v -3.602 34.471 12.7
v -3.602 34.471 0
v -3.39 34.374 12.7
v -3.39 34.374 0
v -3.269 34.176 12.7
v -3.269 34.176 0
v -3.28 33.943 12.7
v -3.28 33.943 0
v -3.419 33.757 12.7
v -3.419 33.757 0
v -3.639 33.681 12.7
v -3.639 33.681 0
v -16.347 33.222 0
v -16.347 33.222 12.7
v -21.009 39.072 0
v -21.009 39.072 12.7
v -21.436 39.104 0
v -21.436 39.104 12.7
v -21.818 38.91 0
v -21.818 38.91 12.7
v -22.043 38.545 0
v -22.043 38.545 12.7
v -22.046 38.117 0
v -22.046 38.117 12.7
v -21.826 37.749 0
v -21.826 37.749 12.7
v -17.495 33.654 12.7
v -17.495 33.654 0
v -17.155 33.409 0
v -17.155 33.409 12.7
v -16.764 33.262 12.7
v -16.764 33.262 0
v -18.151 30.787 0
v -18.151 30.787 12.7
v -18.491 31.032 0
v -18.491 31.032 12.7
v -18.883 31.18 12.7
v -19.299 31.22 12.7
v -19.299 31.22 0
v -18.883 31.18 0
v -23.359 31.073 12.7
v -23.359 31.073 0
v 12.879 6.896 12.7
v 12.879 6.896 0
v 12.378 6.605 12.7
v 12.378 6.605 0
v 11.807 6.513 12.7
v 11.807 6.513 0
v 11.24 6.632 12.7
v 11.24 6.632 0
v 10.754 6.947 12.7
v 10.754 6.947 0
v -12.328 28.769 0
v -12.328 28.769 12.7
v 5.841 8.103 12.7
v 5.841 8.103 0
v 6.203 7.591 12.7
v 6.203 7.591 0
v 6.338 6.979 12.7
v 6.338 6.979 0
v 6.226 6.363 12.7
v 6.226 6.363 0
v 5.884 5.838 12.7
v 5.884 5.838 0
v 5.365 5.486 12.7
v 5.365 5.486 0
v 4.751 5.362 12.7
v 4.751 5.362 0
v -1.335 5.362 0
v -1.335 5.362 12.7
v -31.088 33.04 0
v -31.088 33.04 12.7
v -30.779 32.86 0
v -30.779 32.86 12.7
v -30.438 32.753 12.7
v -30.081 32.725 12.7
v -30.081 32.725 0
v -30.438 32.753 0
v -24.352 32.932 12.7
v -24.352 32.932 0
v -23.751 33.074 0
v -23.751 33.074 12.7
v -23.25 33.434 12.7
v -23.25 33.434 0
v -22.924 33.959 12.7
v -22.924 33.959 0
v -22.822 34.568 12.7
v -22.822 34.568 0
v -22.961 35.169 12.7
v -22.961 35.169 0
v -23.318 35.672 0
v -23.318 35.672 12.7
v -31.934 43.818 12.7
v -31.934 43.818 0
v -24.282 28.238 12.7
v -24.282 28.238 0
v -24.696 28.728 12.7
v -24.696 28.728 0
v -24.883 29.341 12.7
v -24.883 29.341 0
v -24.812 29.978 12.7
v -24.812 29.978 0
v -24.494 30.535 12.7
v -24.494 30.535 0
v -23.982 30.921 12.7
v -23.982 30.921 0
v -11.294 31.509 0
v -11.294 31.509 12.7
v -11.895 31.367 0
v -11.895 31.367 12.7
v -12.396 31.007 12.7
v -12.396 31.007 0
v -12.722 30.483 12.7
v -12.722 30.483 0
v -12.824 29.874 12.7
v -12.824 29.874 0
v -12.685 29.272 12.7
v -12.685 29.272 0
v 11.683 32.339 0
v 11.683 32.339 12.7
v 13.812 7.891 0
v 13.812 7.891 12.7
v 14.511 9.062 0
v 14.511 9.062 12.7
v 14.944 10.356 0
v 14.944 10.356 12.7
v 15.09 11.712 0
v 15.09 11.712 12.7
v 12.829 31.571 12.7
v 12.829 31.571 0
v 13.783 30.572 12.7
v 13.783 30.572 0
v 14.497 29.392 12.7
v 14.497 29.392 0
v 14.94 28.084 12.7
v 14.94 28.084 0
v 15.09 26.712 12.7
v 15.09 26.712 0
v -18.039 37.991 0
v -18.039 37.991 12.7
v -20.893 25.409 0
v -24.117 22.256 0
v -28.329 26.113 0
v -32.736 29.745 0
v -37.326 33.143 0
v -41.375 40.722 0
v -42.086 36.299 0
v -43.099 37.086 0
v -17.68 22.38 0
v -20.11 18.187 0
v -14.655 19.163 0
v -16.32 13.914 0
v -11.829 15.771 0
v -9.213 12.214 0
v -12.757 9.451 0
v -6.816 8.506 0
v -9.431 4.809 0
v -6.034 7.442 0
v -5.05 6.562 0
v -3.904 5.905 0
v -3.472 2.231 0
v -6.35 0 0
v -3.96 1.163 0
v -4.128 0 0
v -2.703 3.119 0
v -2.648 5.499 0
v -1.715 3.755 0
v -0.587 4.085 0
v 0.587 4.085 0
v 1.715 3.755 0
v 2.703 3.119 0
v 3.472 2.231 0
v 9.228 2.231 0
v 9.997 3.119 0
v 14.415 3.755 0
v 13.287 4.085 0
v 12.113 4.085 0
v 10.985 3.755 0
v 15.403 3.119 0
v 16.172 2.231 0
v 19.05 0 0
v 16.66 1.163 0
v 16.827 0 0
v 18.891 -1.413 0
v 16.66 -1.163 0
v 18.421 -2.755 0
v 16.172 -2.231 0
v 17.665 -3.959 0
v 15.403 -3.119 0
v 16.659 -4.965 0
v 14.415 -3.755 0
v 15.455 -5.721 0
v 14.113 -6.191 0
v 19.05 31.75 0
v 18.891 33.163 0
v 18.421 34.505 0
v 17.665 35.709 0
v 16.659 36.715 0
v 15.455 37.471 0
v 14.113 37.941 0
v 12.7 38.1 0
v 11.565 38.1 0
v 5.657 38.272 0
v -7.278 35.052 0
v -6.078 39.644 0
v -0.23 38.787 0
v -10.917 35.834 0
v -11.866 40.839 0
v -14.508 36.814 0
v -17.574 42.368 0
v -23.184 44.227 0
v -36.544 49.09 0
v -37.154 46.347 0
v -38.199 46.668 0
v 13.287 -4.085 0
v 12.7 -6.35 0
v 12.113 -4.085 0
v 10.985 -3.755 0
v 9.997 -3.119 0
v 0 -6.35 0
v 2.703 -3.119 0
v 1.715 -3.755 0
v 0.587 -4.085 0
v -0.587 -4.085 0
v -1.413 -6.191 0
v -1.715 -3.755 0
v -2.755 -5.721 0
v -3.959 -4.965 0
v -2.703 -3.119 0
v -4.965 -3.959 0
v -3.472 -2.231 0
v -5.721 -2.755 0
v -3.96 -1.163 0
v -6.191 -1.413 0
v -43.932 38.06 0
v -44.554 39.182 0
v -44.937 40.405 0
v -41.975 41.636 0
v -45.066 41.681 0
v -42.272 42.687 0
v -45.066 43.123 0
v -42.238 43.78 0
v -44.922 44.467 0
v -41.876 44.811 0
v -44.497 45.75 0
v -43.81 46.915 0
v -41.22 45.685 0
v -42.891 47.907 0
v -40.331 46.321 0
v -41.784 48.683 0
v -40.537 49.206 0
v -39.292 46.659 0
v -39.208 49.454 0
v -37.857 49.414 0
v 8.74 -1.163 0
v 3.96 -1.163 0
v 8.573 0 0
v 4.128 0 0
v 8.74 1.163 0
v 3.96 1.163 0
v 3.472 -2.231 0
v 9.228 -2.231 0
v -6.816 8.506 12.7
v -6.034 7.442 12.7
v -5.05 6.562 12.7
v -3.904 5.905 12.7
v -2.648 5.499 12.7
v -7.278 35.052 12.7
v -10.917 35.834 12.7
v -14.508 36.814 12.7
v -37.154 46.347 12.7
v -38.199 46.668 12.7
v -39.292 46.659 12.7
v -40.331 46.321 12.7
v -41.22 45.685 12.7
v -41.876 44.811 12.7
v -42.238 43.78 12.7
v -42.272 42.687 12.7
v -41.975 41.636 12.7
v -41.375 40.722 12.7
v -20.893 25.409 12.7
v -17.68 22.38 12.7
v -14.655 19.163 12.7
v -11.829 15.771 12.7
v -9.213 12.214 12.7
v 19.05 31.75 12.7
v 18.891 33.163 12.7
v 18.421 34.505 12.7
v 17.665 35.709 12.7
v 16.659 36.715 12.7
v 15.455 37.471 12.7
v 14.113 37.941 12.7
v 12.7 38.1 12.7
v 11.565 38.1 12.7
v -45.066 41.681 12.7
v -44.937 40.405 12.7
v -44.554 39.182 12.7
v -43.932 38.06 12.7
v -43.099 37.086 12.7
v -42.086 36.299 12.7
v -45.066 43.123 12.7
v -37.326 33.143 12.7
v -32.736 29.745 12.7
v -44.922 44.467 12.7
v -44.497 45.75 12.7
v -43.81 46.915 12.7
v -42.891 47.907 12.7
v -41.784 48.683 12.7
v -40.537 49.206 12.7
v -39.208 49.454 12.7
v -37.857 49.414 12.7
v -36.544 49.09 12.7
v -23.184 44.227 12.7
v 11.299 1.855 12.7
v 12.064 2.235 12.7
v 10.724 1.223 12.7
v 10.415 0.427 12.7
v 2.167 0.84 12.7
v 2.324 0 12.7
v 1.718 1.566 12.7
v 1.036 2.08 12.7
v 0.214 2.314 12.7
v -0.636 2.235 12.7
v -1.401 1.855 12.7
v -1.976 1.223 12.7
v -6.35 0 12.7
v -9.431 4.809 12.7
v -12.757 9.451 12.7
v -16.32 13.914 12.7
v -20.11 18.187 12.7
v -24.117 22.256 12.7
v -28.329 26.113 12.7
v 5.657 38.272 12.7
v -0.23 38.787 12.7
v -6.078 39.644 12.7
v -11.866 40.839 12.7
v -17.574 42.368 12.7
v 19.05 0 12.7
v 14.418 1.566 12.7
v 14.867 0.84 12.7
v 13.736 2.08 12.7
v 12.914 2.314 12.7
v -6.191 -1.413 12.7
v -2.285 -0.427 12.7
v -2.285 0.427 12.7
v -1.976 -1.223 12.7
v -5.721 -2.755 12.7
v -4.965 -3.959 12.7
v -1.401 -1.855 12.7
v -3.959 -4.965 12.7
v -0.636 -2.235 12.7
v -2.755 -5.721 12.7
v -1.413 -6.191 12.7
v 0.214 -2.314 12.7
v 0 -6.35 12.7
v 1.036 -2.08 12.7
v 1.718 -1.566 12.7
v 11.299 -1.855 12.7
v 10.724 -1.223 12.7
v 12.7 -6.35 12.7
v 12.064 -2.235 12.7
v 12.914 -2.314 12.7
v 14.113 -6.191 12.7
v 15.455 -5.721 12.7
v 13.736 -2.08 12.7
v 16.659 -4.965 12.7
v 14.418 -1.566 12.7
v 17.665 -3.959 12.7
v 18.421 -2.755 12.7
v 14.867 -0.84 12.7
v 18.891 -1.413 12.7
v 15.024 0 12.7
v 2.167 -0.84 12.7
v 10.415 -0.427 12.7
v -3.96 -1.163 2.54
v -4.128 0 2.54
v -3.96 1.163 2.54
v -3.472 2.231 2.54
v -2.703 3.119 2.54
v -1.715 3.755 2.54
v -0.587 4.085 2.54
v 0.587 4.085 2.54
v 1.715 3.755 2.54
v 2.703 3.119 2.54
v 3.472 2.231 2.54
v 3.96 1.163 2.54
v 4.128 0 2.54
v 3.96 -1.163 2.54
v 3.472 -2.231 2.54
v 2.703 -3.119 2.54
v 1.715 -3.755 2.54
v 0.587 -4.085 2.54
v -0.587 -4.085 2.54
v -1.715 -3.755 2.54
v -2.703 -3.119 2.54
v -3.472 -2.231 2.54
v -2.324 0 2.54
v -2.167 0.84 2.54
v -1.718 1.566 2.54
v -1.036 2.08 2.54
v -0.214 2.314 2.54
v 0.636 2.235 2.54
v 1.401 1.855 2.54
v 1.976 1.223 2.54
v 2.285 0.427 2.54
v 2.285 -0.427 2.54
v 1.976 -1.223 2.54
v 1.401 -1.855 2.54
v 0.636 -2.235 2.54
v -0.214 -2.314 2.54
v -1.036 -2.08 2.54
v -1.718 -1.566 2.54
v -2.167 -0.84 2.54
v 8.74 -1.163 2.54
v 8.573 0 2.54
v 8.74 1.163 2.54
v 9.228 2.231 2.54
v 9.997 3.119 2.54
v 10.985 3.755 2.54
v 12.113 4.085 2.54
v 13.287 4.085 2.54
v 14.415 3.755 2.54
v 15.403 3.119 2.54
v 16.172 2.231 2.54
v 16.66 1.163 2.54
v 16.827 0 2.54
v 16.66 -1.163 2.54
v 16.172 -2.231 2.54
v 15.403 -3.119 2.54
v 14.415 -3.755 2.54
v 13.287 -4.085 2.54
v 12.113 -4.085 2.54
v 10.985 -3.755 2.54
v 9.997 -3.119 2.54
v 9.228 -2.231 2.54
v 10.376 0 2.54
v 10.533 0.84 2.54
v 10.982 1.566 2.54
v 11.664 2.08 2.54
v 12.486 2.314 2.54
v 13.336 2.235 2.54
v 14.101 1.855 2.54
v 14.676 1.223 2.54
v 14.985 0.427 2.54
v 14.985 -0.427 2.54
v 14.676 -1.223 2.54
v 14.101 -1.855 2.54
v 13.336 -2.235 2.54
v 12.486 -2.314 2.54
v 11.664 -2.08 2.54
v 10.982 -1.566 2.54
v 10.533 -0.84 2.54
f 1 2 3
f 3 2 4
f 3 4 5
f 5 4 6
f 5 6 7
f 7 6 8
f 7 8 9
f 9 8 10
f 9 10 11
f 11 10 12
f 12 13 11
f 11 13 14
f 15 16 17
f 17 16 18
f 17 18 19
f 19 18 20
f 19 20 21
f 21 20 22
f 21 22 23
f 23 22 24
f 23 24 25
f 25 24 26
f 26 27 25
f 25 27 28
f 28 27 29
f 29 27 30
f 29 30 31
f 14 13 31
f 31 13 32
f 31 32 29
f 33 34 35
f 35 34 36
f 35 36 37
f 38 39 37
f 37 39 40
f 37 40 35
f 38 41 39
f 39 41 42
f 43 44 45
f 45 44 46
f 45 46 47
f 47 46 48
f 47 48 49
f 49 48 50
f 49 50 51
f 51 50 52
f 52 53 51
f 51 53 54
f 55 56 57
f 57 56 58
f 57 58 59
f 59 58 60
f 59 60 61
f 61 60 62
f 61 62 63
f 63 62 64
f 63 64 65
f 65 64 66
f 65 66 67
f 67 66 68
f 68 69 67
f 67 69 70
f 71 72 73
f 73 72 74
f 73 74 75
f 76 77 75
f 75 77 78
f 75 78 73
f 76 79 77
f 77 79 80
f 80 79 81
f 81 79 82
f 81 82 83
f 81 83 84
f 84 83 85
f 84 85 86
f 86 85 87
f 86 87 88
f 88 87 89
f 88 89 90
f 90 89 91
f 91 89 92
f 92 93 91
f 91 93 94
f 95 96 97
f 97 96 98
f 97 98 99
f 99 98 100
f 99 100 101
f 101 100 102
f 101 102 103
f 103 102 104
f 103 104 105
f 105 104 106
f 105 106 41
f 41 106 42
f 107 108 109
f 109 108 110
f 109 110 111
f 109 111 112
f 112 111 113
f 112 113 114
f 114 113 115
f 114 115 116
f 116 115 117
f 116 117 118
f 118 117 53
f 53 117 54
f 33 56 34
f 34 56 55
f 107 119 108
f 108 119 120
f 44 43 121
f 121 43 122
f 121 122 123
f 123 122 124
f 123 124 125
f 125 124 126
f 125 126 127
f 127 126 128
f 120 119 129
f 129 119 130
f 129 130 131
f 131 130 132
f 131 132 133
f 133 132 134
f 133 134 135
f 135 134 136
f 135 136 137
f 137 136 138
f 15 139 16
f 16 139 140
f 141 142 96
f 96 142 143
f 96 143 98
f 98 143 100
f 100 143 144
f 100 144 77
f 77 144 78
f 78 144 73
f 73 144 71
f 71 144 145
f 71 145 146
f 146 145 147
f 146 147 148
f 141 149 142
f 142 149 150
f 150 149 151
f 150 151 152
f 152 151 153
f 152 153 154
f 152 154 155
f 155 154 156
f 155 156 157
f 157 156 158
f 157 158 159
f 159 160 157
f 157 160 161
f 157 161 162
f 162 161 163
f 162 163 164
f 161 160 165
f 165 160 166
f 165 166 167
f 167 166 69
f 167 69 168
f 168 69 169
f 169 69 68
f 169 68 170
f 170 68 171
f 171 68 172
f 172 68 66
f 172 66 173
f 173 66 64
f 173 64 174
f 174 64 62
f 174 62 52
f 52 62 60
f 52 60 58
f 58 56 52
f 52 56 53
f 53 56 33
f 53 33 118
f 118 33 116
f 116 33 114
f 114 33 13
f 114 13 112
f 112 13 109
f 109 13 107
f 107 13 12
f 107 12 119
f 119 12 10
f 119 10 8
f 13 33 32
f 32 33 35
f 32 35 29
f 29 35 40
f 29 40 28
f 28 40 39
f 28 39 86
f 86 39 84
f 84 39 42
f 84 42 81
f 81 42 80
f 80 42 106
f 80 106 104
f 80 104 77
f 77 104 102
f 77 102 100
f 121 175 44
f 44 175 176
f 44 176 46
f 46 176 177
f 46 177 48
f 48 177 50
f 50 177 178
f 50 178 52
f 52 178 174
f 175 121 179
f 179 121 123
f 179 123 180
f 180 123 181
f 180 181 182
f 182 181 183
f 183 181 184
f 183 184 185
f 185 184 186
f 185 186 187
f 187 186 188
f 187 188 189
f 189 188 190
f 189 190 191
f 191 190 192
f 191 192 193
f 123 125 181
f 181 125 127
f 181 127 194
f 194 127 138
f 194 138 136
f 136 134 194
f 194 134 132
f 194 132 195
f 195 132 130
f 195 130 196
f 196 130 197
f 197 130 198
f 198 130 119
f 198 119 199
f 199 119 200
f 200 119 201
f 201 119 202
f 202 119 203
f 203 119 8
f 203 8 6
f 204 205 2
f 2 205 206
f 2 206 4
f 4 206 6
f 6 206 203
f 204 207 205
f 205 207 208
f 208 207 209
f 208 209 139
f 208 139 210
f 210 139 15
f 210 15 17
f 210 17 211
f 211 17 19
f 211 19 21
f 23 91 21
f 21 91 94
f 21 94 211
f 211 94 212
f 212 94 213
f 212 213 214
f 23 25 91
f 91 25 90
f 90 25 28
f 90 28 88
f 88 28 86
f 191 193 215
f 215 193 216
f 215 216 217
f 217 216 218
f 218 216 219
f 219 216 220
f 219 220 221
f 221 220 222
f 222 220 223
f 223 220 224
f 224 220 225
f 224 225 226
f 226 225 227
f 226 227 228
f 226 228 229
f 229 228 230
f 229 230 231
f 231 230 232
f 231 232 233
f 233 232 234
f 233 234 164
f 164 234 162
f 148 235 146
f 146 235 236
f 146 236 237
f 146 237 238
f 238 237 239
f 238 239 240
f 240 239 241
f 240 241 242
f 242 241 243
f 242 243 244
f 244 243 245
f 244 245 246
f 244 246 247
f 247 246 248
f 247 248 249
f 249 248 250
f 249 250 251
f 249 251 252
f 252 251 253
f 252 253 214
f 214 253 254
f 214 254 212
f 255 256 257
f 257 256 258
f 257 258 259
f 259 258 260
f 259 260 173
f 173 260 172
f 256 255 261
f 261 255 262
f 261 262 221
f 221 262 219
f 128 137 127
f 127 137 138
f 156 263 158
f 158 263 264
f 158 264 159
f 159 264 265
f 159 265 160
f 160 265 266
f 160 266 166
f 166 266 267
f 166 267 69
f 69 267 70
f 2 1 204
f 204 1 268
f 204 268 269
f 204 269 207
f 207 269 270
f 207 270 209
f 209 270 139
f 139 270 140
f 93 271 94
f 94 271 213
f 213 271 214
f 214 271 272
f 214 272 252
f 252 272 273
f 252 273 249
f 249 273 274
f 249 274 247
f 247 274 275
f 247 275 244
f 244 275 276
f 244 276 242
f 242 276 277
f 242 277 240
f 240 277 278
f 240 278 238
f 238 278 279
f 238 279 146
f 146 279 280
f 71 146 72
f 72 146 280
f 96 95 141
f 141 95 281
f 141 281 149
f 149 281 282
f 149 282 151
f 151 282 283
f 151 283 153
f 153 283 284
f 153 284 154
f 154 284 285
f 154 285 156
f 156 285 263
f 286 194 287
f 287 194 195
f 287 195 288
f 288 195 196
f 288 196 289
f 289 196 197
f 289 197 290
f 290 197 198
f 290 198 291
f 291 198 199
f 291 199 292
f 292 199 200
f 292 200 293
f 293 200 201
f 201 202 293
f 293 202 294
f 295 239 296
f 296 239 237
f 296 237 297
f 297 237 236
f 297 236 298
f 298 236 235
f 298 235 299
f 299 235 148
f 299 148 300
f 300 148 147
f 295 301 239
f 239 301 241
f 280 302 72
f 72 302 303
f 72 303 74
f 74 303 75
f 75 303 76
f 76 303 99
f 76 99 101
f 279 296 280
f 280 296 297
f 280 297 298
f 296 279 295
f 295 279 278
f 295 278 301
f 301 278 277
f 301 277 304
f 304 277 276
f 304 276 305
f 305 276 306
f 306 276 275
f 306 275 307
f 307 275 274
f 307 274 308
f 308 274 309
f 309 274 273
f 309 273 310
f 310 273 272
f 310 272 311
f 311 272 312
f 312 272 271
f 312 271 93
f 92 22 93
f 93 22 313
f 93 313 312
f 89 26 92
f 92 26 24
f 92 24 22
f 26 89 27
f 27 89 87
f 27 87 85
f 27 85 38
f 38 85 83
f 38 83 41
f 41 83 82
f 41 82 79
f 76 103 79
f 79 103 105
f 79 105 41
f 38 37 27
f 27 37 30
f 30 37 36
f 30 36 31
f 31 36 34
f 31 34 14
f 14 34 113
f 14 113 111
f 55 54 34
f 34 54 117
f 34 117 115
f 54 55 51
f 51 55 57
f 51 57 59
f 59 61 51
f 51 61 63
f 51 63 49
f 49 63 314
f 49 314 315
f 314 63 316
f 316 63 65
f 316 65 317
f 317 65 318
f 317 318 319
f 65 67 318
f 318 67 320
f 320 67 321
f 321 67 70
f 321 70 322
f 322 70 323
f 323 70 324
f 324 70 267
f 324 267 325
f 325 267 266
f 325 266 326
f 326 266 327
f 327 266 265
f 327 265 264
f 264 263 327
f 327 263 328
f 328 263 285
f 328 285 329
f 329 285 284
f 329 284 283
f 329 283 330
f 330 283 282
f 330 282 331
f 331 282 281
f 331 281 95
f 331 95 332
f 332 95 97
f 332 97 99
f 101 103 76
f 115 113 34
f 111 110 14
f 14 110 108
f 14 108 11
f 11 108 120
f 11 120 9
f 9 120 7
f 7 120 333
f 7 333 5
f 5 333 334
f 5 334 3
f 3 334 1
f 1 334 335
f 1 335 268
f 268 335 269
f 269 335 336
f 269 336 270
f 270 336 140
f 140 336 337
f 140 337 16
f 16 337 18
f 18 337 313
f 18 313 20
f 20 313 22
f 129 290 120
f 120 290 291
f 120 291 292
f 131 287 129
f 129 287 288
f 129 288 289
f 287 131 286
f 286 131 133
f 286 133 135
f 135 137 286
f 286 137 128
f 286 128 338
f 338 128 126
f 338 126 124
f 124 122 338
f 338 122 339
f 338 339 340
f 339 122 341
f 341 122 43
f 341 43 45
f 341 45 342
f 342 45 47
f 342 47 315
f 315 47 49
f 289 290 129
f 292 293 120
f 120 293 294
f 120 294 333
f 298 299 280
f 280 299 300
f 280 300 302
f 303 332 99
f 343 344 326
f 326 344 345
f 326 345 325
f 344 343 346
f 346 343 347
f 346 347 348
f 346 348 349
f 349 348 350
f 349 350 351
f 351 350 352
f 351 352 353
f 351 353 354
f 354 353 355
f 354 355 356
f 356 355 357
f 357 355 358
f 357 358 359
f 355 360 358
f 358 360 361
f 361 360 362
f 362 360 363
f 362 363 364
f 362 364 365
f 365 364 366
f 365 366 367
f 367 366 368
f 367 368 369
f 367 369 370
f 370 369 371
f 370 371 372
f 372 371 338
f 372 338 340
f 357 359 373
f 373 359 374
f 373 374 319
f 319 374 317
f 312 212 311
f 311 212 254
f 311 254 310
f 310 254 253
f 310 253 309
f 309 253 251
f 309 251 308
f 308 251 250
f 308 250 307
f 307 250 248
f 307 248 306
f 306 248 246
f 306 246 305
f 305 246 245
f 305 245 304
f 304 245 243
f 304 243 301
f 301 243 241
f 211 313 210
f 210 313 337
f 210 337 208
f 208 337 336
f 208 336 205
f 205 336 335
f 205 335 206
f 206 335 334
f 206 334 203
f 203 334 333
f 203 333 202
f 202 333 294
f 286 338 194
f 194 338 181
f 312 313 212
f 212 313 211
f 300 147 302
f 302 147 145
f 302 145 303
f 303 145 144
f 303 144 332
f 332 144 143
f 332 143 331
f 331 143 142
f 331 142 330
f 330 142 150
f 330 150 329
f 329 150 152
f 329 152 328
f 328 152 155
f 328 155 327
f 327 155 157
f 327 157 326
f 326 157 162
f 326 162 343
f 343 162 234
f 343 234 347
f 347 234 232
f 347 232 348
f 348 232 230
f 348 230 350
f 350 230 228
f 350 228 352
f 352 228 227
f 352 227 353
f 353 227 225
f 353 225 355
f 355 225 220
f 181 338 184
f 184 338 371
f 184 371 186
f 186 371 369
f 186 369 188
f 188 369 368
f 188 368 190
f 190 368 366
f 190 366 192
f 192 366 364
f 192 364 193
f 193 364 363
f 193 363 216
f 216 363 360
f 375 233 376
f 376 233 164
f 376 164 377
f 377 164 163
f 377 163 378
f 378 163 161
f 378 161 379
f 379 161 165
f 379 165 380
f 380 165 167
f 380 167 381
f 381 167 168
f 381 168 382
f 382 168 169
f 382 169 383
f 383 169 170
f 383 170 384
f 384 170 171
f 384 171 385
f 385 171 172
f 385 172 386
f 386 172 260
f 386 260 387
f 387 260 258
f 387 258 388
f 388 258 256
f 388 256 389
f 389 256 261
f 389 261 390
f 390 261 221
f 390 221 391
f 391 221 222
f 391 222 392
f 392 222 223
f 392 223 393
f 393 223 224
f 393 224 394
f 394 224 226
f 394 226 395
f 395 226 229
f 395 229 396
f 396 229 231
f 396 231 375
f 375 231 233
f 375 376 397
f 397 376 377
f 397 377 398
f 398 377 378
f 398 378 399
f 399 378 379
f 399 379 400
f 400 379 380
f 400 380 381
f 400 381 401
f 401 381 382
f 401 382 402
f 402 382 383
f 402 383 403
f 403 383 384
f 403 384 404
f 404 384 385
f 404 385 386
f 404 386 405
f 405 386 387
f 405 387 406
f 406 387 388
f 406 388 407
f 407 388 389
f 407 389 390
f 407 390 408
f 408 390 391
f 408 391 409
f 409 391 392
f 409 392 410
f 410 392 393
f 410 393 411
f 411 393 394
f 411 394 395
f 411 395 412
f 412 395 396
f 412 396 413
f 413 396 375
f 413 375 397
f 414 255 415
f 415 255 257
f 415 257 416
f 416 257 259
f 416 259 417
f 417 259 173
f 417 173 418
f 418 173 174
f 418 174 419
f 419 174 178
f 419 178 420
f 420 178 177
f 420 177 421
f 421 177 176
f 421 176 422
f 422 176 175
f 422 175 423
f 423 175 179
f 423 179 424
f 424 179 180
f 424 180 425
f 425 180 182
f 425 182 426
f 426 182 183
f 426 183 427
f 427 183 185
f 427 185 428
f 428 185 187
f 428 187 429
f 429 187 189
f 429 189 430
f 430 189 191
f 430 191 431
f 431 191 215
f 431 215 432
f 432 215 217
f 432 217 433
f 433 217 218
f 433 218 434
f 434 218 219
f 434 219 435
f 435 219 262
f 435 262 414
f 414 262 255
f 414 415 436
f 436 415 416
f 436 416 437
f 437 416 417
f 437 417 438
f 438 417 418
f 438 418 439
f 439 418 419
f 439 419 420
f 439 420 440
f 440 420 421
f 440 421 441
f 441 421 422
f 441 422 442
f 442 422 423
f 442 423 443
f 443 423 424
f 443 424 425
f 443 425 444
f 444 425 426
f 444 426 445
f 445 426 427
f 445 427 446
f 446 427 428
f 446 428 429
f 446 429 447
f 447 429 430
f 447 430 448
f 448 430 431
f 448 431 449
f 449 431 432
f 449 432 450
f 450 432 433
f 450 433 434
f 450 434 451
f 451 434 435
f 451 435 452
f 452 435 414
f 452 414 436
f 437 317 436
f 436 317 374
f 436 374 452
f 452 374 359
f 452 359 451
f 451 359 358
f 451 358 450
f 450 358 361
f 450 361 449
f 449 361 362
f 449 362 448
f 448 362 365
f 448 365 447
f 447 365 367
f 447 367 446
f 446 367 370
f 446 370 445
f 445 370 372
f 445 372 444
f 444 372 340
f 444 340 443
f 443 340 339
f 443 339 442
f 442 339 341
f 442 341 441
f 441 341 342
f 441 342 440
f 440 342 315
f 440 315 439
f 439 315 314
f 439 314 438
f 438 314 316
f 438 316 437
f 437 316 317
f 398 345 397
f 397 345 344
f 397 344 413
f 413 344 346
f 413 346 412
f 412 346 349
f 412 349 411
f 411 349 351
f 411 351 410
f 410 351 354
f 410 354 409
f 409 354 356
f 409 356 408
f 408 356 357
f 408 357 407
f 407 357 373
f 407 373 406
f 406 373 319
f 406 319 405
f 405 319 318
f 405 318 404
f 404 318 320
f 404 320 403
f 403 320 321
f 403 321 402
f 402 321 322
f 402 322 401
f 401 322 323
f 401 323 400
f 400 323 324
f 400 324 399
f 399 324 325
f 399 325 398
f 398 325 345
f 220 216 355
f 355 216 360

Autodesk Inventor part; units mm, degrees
ref_plane "YZ Plane" through (0, 0, 0) normal (1, 0, 0) x (0, 1, 0)
ref_plane "XZ Plane" through (0, 0, 0) normal (0, 1, 0) x (-1, 0, 0)
ref_plane "XY Plane" through (0, 0, 0) normal (0, 0, 1) x (1, 0, 0)
sketch "Sketch1" plane through (0, 0, 0) normal (0, 0, 1) x (1, 0, 0)
  circle A0 centre (0, 0) radius 2.3241
  line L0 (0, 0) -> (12.7, 0)
  circle A1 centre (12.7, 0) radius 2.3241
  line L1 (0, 0) -> (12.7, 0) construction
  line L2 (0, -6.35) -> (12.7, -6.35)
  line L3 (12.7, 6.35) -> (0, 6.35)
  arc A2 (0, 6.35) -> (0, -6.35) centre (0, 0) ccw
  arc A3 (12.7, -6.35) -> (12.7, 6.35) centre (12.7, 0) ccw
  point P0 (6.35, 0)
  dimension "d0" = 4.6482
  dimension "d1" = 12.7
  dimension "d2" = 4.6482
  dimension "d3" = 12.7
extrude "Extrusion1" add sketch "Sketch1" along normal blind 12.7
sketch "Sketch2" plane through (0, 0, 0) normal (0, 0, -1) x (-1, 0, 0)
  circle A0 centre (-12.7, 0) radius 2.3241 projected
  circle A1 centre (0, 0) radius 2.3241 projected
  circle A2 centre (-12.7, 0) radius 4.1275
  circle A3 centre (0, 0) radius 4.1275
  dimension "d6" = 8.255
  dimension "d7" = 8.255
extrude "Extrusion2" cut sketch "Sketch2" against normal blind 2.54
sketch "Sketch3" plane through (0, 0, 12.7) normal (0, 0, 1) x (1, 0, 0)
  arc A0 (0, 6.35) -> (0, -6.35) centre (0, 0) ccw projected
  arc A1 (12.7, -6.35) -> (12.7, 6.35) centre (12.7, 0) ccw projected
  line L0 (12.7, 6.35) -> (0, 6.35) projected
  arc A2 (0, 6.35) -> (0, -6.35) centre (0, 0) ccw projected
  line L1 (0, -6.35) -> (12.7, -6.35) projected
  circle A3 centre (0, 0) radius 2.3241 projected
  circle A4 centre (12.7, 0) radius 2.3241 projected
  line L2 (19.05, 0) -> (19.05, 38.1)
  line L3 (-6.35, 0) -> (-6.35, 38.1)
  arc A5 (0, 6.35) -> (0, -6.35) centre (0, 0) ccw projected
  line L4 (-6.35, 38.1) -> (19.05, 38.1)
  line L5 (-6.35, 38.1) -> (-69.85, 38.1)
  line L6 (-6.35, 38.1) -> (-72.261, 62.0897)
  line L7 (-72.261, 62.0897) -> (-72.261, 49.3897)
  arc A6 (-6.35, 0) -> (-72.261, 49.3897) centre (-100.4419, -56.8924) ccw
  line L8 (-34.5064, 31.0993) -> (-34.5064, 48.3481)
  line L9 (-45.0661, 38.1) -> (-45.0661, 52.1915)
  point P0 (0, 6.35)
  point P1 (-34.5064, 38.1)
  dimension "d10" = 38.1
  dimension "d14" = 63.5
  dimension "d15" = 20
  dimension "d16" = 12.7
extrude "Extrusion3" add sketch "Sketch3" against normal up to surface (12.7 mm away) contours A0 L3 L4 L2 A1 L0 | A6 L8 L5 L3 | L5 L8 L6
fillet "Fillet1" radius 6.35 1 edges at (19.05, 38.1, 6.35)
fillet "Fillet2" radius 101.6 1 edges at (-6.35, 38.1, 6.35)
extrude "Extrusion7" add sketch "Sketch3" against normal blind 12.7 contours A0 L3 L4 L2 A1 L0 | A6 L8 L5 L3 | A6 L5 L8 | L5 L9 L6 L8
fillet "Fillet3" radius 6.35 3 edges at (-45.0661, 52.1915, 6.35) (-45.0661, 38.1, 6.35) (19.05, 38.1, 6.35)
sketch "Sketch6" plane through (0, 0, 12.7) normal (0, 0, 1) x (1, 0, 0)
  line L0 (-36.5443, 49.0898) -> (-23.1844, 44.2272) projected
  line L1 (-26.9453, 41.2324) -> (-18.0387, 37.9907)
  arc A0 (-23.1844, 44.2272) -> (11.5648, 38.1) centre (11.5648, 139.7) ccw projected
  arc A1 (-18.0387, 37.9907) -> (5.1275, 33.9059) centre (5.1275, 101.6392) ccw
  arc A2 (-36.5443, 49.0898) -> (-45.0661, 43.1228) centre (-38.7161, 43.1228) ccw projected
  arc A3 (-26.9453, 41.2324) -> (-32.6265, 37.2544) centre (-28.3931, 37.2544) ccw
  arc A4 (-45.0661, 41.681) -> (-42.0862, 36.2991) centre (-38.7161, 41.681) ccw projected
  arc A5 (-32.6265, 36.2932) -> (-30.6399, 32.7052) centre (-28.3932, 36.2932) ccw
  line L2 (-45.0661, 41.681) -> (-45.0661, 43.1228) projected
  line L3 (-32.6265, 36.2932) -> (-32.6265, 37.2544)
  arc A6 (-6.35, 0) -> (0, -6.35) centre (0, 0) ccw projected
  arc A7 (-6.8158, 8.5058) -> (-30.6399, 32.7052) centre (-69.5437, -29.4224) ccw
  arc A8 (12.7, -6.35) -> (19.05, 0) centre (12.7, 0) ccw projected
  line L4 (-6.8158, 8.5058) -> (10.1176, 8.5058)
  line L5 (10.1176, 8.5058) -> (10.1176, 30.026)
  line L6 (12.7, 38.1) -> (11.5648, 38.1) projected
  line L7 (5.1275, 33.9059) -> (5.8843, 33.9059)
  arc A9 (10.1176, 30.026) -> (5.8843, 33.9059) centre (5.8784, 29.65) ccw
  circle A10 centre (-38.7161, 43.1228) radius 3.5825
  line L8 (-30.6399, 32.7052) -> (-41.3753, 40.7221)
  line L9 (-37.1542, 46.3469) -> (-25.5432, 40.7221)
  line L10 (-6.8158, 8.5058) -> (-5.0194, 5.3621)
  line L11 (-5.0194, 5.3621) -> (15.0904, 5.3621)
  line L12 (15.0904, 5.3621) -> (15.0904, 31.7435)
  line L13 (15.0904, 31.7435) -> (5.8842, 33.9059)
  point P0 (5.8842, 33.9059)
extrude "Extrusion8" cut sketch "Sketch6" against normal blind 12.7 contours A3 L3 A5 L8 A10 L9 L1 | L1 A1 L7 L13 A9 L5 L4 A7 L8 A5 L3 A3 | A10 L8 | L13 L12 L11 L10 L4 L5 A9 picked at (-38.0775, 41.7353)
fillet "Fillet4" radius 6.35 4 edges at (15.0904, 31.7435, 6.35) (5.8842, 33.9059, 6.35) (-5.0194, 5.3621, 6.35) (15.0904, 5.3621, 6.35)
sketch "Sketch7" plane through (0, 0, 12.7) normal (0, 0, 1) x (1, 0, 0)
  point P0 (0, 0)
sketch "Sketch8" plane through (0, 0, 12.7) normal (0, 0, 1) x (1, 0, 0)
  arc A0 (-6.8158, 8.5058) -> (-30.6399, 32.7052) centre (-69.5437, -29.4224) ccw projected
  line L0 (-30.6399, 32.7052) -> (5.4461, 34.0088)
  line L1 (5.4461, 34.0088) -> (12.4378, 32.3666)
  line L2 (10.1924, 32.894) -> (6.6005, 33.7376) projected
  line L3 (12.4378, 32.3666) -> (-28.2224, 30.8977)
  line L4 (-28.2224, 30.8977) -> (-30.6399, 32.7052)
  arc A1 (8.7404, 5.3621) -> (15.0904, 11.7121) centre (8.7404, 11.7121) ccw projected
  line L5 (8.7404, 5.3621) -> (-31.9338, 43.818)
  line L6 (-25.5432, 40.7221) -> (-37.1542, 46.3469) projected
  line L7 (11.702, 6.0501) -> (-26.744, 42.3992)
  line L8 (-26.744, 42.3992) -> (-31.9338, 43.818)
  point P0 (0, 0)
  point P1 (-20.565, 33.0692)
  point P2 (-18.6346, 31.2441)
  point P3 (11.6714, 6.079)
  point P4 (-15.0811, 31.3725)
  point P5 (-17.0115, 33.1975)
extrude "Extrusion9" add sketch "Sketch8" against normal blind 12.7
fillet "Fillet5" radius 1.5875 8 edges at (-15.0811, 31.3725, 6.35) (-27.9088, 30.9091, 6.35) (-20.565, 33.0692, 6.35) (-30.6399, 32.7052, 6.35) (8.7404, 5.3621, 6.35) (11.6714, 6.079, 6.35) (-18.6346, 31.2441, 6.35) (-17.0115, 33.1975, 6.35)
fillet "Fillet6" radius 0.7937 1 edges at (-24.6115, 40.383, 6.35)
fillet "Fillet7" radius 0.3969 1 edges at (3.2884, 33.9309, 6.35)
properties part number "Ring Bay"
